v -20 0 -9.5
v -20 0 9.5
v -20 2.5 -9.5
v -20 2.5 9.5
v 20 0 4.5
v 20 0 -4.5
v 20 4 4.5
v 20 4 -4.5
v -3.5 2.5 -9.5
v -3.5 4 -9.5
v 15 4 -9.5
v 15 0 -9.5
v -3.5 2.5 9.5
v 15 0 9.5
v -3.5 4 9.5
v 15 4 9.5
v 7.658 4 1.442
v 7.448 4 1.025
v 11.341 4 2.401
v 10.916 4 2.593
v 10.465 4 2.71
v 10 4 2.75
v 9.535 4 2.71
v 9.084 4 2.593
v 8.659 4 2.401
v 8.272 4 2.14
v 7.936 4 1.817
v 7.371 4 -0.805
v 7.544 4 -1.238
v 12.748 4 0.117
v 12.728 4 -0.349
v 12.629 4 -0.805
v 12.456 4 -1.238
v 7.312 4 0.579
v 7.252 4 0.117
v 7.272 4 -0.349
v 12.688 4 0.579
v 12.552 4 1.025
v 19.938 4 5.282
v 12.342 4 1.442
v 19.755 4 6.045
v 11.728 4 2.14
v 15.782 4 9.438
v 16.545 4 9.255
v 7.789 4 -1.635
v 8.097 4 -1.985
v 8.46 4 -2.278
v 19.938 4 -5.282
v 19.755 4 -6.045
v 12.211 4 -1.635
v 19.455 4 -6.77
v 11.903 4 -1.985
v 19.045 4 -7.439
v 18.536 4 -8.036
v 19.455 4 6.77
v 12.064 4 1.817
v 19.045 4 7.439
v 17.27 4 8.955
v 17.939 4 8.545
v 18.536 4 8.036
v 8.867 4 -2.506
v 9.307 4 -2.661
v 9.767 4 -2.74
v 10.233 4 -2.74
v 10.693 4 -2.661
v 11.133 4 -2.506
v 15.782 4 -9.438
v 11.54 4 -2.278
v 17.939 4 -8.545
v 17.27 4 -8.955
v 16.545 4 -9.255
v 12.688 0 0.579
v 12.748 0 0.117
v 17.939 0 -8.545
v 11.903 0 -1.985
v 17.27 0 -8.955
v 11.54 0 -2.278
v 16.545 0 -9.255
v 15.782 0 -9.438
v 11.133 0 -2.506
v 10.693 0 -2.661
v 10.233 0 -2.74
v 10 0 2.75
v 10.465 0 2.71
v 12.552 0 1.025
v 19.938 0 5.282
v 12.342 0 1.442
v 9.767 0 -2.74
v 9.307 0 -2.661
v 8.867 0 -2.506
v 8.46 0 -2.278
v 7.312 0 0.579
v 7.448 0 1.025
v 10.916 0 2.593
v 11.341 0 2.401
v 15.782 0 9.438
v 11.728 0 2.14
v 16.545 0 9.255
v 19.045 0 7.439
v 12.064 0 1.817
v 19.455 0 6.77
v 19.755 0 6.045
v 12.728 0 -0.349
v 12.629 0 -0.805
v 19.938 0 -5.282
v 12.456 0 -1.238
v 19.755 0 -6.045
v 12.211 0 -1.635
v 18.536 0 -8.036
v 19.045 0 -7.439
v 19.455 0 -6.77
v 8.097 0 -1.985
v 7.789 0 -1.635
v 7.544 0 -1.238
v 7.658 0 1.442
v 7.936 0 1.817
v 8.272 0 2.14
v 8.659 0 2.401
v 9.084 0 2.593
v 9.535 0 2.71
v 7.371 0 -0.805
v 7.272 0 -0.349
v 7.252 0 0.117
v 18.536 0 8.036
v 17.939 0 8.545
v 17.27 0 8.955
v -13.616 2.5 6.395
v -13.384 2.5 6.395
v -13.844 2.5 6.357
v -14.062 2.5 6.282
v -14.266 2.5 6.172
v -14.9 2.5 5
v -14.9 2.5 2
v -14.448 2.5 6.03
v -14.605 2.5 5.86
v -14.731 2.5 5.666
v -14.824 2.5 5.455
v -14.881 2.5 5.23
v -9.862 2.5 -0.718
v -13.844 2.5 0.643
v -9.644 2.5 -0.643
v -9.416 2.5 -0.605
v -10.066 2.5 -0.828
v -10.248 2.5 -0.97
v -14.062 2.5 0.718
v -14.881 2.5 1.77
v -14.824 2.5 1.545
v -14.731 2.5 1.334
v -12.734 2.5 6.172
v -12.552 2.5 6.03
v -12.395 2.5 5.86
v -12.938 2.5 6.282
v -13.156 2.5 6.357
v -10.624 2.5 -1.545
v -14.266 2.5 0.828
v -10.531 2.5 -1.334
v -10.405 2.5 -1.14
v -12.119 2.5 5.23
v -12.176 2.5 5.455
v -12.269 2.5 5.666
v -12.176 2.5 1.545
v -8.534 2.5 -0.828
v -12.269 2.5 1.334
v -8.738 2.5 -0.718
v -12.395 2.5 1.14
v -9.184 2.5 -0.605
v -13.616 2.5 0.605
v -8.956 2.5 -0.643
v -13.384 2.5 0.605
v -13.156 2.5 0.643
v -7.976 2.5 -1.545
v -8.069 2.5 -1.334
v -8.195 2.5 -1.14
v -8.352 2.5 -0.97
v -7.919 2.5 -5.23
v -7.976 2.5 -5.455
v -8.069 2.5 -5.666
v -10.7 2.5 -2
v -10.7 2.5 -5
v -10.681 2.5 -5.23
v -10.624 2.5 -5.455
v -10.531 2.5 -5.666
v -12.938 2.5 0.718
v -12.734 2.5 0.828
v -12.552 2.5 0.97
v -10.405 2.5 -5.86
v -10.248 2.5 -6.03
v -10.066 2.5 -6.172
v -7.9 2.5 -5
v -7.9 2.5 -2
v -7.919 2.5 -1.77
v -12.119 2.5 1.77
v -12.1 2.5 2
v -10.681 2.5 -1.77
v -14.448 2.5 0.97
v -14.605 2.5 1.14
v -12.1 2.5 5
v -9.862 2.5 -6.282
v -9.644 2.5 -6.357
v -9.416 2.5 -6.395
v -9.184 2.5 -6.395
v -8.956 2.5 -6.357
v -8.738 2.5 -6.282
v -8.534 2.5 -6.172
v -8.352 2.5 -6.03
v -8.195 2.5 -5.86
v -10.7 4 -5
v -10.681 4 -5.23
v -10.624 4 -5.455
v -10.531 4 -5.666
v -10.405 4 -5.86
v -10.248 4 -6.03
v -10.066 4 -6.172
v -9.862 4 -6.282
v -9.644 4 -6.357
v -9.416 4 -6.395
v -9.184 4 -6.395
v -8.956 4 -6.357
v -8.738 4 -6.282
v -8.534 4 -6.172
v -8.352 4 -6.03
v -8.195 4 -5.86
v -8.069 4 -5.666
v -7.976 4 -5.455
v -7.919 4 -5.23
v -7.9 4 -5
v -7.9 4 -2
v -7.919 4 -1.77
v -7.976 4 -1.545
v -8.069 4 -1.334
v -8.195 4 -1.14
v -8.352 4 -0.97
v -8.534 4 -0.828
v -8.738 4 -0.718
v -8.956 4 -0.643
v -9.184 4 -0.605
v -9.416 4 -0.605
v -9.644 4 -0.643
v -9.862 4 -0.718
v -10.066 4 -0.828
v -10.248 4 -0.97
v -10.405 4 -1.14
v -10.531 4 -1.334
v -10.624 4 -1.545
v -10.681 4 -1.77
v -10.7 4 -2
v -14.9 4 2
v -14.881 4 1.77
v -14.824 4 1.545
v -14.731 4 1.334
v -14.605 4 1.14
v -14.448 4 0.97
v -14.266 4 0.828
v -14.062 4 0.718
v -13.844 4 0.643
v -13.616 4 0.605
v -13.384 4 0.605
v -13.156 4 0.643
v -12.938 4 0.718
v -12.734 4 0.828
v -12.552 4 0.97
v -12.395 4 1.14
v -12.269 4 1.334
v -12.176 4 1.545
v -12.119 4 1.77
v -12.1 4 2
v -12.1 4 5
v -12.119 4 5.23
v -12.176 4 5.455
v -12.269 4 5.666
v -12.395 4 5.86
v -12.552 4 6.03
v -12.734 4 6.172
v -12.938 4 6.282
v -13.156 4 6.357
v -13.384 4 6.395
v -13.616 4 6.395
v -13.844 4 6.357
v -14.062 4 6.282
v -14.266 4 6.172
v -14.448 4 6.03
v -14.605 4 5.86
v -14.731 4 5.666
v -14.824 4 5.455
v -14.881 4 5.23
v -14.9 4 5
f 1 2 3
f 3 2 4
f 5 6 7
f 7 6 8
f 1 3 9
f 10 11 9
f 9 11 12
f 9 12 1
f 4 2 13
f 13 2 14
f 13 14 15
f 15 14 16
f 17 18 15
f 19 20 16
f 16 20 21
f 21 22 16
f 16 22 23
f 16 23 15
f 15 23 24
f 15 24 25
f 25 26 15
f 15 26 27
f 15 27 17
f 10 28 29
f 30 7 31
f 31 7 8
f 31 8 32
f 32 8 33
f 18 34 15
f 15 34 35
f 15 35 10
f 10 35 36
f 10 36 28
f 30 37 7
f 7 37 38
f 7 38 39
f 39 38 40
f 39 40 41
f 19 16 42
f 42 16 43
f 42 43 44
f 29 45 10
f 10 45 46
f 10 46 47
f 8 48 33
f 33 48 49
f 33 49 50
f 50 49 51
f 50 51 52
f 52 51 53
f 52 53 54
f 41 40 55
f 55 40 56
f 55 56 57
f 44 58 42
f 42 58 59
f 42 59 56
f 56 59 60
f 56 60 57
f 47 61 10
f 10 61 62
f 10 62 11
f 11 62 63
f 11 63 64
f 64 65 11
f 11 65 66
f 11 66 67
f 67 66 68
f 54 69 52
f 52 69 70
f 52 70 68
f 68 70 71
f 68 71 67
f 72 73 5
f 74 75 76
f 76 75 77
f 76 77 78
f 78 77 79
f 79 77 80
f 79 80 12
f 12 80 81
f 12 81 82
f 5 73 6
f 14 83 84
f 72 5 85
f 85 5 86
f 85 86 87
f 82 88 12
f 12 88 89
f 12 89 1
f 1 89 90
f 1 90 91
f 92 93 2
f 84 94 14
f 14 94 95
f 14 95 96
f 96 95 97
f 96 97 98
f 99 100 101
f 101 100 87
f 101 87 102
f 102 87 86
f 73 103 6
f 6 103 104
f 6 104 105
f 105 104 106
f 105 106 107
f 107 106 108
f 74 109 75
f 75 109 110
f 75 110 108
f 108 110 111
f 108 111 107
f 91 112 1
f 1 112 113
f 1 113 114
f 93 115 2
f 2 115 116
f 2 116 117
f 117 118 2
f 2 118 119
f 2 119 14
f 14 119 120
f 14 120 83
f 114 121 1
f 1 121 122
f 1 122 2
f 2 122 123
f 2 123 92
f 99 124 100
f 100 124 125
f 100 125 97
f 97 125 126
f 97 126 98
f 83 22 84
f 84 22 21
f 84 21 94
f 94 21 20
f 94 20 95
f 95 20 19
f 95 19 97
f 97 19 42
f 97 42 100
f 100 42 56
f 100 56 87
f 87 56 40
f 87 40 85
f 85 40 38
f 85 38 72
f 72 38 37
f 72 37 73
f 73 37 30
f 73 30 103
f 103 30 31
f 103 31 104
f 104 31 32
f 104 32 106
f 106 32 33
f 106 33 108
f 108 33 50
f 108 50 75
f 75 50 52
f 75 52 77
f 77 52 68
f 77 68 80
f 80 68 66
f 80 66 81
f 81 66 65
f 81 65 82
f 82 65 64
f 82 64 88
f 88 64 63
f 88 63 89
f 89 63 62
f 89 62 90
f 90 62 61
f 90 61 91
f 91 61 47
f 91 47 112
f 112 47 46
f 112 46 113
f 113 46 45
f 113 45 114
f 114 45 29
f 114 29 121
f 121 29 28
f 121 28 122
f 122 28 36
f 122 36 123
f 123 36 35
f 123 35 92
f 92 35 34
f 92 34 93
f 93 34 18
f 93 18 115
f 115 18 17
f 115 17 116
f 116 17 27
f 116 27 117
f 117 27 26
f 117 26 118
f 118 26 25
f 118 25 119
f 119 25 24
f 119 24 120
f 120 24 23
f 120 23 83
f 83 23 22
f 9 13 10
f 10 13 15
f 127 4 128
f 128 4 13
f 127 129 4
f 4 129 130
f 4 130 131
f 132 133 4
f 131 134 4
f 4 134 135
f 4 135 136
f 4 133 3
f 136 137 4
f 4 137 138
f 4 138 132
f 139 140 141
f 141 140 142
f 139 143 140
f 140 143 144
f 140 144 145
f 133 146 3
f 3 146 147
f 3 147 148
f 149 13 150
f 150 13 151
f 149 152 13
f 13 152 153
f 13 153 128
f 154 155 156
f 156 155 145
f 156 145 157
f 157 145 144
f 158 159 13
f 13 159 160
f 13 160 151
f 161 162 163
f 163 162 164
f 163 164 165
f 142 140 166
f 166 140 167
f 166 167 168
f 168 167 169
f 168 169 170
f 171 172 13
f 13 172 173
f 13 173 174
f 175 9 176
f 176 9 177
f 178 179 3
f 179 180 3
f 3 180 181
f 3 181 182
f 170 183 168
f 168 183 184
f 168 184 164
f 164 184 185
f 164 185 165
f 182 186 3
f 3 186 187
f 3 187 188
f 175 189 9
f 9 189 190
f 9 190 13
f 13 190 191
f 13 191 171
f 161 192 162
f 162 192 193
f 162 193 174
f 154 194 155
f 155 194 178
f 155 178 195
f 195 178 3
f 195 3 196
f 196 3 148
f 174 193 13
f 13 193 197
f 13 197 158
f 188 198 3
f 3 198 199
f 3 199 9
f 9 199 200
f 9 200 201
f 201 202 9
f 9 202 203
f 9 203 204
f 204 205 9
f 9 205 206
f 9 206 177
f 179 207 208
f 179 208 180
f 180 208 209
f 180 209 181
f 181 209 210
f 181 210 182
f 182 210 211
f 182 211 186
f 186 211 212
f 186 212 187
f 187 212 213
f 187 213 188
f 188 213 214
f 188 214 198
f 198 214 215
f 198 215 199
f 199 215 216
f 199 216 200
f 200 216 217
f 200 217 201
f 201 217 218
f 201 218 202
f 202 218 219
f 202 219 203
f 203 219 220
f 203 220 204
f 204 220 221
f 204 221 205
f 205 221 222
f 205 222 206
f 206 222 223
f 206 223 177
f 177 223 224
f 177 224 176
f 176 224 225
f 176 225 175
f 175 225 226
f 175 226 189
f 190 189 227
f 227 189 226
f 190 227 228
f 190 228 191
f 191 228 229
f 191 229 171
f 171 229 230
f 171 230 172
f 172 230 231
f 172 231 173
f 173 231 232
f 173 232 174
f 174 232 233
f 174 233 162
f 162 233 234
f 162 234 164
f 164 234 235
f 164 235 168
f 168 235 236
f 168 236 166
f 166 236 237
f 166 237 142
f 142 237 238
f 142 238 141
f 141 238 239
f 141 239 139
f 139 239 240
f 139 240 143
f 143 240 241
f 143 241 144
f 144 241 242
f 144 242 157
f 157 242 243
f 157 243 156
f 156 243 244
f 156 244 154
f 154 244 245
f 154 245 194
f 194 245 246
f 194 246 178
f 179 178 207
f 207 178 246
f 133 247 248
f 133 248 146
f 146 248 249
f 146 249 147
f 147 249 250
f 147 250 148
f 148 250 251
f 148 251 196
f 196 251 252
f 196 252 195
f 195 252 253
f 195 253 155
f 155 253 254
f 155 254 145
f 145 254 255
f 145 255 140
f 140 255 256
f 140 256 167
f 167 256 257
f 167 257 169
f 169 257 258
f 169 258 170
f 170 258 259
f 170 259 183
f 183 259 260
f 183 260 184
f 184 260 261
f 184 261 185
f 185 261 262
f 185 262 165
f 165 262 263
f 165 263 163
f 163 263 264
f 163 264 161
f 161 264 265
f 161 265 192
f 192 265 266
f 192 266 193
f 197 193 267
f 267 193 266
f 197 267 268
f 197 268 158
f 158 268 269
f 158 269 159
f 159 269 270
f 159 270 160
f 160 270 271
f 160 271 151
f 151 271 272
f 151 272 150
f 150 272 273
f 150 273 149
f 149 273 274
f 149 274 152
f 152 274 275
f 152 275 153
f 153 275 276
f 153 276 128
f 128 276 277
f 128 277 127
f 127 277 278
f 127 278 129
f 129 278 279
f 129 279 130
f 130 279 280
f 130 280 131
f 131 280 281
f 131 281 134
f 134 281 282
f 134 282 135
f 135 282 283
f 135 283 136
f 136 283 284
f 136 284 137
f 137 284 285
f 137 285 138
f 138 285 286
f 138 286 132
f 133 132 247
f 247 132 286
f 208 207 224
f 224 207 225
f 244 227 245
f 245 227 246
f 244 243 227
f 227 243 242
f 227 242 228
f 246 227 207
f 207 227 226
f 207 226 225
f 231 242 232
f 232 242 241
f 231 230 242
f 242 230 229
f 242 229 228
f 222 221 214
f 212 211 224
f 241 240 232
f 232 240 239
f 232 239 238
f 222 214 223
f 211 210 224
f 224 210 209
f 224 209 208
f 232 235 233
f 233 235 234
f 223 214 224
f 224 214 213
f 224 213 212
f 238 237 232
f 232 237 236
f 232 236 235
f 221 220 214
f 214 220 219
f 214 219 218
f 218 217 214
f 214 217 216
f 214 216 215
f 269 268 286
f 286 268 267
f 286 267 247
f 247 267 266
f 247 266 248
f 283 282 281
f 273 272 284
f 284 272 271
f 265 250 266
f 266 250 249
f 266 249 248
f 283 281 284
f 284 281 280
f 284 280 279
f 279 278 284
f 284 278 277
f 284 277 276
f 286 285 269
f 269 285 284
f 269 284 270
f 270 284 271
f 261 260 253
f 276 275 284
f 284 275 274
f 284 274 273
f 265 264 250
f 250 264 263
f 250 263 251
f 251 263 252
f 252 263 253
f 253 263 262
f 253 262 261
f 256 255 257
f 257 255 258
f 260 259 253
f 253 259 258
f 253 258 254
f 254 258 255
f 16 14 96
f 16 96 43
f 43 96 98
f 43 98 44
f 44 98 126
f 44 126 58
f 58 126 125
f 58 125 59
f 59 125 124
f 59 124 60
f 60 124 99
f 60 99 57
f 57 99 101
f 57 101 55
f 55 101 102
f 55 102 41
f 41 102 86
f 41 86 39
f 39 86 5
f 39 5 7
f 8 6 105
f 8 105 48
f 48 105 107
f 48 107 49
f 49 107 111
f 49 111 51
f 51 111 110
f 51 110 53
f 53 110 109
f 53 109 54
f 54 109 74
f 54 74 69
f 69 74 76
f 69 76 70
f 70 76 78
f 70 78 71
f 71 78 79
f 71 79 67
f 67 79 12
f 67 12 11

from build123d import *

# Parameters (mm, degrees)
SKETCH1_W           = 40
SKETCH1_H           = 19
BOSS_EXTRUDE1_DEPTH = 4
CUT_EXTRUDE1_REACH  = 24.5
SKETCH2_R           = 2.75
SKETCH4_W           = 16.5
SKETCH4_H           = 19
CUT_EXTRUDE2_DEPTH  = 1.5
FILLET1_R           = 5


with BuildPart() as part:
    # Sketch1 → Boss-Extrude1 (new body)
    with BuildSketch(Plane(origin=(0, 0, 0), x_dir=(1, 0, 0), z_dir=(0, 1, 0))):
        Rectangle(SKETCH1_W, SKETCH1_H)
    extrude(amount=BOSS_EXTRUDE1_DEPTH)

    # Sketch2 → Cut-Extrude1 (cut, up to next)
    with BuildSketch(Plane(origin=(0, 4, 0), x_dir=(1, 0, 0), z_dir=(0, 1, 0)), mode=Mode.PRIVATE) as cut_extrude1_sk1:
        with Locations(Location((10, 0, 0), (0, 0, 270))):
            Circle(SKETCH2_R)
    cut_extrude1_tool1 = extrude(cut_extrude1_sk1.sketch, amount=-CUT_EXTRUDE1_REACH, mode=Mode.PRIVATE) & part.part
    add(cut_extrude1_tool1.solids().sort_by_distance((10, 4, 0))[0], mode=Mode.SUBTRACT)

    # Sketch4 → Cut-Extrude2 (cut)
    with BuildSketch(Plane(origin=(0, 4, 0), x_dir=(1, 0, 0), z_dir=(0, 1, 0))):
        with Locations((-11.75, 0)):
            Rectangle(SKETCH4_W, SKETCH4_H)
        with BuildLine():
            Line((-7.9, 5), (-7.9, 2))
            ThreePointArc((-7.9, 2), (-9.3, 0.6), (-10.7, 2))
            Line((-10.7, 2), (-10.7, 5))
            ThreePointArc((-10.7, 5), (-9.3, 6.4), (-7.9, 5))
        make_face(mode=Mode.SUBTRACT)
        with BuildLine():
            Line((-12.1, -2), (-12.1, -5))
            ThreePointArc((-12.1, -5), (-13.5, -6.4), (-14.9, -5))
            Line((-14.9, -5), (-14.9, -2))
            ThreePointArc((-14.9, -2), (-13.5, -0.6), (-12.1, -2))
        make_face(mode=Mode.SUBTRACT)
    extrude(amount=-CUT_EXTRUDE2_DEPTH, mode=Mode.SUBTRACT)

    # Fillet1
    fillet1_edges = [part.edges().sort_by_distance(p)[0] for p in [
        (20, 2, 9.5),
        (20, 2, -9.5),
    ]]
    fillet(fillet1_edges, radius=FILLET1_R)


solid = part.part
